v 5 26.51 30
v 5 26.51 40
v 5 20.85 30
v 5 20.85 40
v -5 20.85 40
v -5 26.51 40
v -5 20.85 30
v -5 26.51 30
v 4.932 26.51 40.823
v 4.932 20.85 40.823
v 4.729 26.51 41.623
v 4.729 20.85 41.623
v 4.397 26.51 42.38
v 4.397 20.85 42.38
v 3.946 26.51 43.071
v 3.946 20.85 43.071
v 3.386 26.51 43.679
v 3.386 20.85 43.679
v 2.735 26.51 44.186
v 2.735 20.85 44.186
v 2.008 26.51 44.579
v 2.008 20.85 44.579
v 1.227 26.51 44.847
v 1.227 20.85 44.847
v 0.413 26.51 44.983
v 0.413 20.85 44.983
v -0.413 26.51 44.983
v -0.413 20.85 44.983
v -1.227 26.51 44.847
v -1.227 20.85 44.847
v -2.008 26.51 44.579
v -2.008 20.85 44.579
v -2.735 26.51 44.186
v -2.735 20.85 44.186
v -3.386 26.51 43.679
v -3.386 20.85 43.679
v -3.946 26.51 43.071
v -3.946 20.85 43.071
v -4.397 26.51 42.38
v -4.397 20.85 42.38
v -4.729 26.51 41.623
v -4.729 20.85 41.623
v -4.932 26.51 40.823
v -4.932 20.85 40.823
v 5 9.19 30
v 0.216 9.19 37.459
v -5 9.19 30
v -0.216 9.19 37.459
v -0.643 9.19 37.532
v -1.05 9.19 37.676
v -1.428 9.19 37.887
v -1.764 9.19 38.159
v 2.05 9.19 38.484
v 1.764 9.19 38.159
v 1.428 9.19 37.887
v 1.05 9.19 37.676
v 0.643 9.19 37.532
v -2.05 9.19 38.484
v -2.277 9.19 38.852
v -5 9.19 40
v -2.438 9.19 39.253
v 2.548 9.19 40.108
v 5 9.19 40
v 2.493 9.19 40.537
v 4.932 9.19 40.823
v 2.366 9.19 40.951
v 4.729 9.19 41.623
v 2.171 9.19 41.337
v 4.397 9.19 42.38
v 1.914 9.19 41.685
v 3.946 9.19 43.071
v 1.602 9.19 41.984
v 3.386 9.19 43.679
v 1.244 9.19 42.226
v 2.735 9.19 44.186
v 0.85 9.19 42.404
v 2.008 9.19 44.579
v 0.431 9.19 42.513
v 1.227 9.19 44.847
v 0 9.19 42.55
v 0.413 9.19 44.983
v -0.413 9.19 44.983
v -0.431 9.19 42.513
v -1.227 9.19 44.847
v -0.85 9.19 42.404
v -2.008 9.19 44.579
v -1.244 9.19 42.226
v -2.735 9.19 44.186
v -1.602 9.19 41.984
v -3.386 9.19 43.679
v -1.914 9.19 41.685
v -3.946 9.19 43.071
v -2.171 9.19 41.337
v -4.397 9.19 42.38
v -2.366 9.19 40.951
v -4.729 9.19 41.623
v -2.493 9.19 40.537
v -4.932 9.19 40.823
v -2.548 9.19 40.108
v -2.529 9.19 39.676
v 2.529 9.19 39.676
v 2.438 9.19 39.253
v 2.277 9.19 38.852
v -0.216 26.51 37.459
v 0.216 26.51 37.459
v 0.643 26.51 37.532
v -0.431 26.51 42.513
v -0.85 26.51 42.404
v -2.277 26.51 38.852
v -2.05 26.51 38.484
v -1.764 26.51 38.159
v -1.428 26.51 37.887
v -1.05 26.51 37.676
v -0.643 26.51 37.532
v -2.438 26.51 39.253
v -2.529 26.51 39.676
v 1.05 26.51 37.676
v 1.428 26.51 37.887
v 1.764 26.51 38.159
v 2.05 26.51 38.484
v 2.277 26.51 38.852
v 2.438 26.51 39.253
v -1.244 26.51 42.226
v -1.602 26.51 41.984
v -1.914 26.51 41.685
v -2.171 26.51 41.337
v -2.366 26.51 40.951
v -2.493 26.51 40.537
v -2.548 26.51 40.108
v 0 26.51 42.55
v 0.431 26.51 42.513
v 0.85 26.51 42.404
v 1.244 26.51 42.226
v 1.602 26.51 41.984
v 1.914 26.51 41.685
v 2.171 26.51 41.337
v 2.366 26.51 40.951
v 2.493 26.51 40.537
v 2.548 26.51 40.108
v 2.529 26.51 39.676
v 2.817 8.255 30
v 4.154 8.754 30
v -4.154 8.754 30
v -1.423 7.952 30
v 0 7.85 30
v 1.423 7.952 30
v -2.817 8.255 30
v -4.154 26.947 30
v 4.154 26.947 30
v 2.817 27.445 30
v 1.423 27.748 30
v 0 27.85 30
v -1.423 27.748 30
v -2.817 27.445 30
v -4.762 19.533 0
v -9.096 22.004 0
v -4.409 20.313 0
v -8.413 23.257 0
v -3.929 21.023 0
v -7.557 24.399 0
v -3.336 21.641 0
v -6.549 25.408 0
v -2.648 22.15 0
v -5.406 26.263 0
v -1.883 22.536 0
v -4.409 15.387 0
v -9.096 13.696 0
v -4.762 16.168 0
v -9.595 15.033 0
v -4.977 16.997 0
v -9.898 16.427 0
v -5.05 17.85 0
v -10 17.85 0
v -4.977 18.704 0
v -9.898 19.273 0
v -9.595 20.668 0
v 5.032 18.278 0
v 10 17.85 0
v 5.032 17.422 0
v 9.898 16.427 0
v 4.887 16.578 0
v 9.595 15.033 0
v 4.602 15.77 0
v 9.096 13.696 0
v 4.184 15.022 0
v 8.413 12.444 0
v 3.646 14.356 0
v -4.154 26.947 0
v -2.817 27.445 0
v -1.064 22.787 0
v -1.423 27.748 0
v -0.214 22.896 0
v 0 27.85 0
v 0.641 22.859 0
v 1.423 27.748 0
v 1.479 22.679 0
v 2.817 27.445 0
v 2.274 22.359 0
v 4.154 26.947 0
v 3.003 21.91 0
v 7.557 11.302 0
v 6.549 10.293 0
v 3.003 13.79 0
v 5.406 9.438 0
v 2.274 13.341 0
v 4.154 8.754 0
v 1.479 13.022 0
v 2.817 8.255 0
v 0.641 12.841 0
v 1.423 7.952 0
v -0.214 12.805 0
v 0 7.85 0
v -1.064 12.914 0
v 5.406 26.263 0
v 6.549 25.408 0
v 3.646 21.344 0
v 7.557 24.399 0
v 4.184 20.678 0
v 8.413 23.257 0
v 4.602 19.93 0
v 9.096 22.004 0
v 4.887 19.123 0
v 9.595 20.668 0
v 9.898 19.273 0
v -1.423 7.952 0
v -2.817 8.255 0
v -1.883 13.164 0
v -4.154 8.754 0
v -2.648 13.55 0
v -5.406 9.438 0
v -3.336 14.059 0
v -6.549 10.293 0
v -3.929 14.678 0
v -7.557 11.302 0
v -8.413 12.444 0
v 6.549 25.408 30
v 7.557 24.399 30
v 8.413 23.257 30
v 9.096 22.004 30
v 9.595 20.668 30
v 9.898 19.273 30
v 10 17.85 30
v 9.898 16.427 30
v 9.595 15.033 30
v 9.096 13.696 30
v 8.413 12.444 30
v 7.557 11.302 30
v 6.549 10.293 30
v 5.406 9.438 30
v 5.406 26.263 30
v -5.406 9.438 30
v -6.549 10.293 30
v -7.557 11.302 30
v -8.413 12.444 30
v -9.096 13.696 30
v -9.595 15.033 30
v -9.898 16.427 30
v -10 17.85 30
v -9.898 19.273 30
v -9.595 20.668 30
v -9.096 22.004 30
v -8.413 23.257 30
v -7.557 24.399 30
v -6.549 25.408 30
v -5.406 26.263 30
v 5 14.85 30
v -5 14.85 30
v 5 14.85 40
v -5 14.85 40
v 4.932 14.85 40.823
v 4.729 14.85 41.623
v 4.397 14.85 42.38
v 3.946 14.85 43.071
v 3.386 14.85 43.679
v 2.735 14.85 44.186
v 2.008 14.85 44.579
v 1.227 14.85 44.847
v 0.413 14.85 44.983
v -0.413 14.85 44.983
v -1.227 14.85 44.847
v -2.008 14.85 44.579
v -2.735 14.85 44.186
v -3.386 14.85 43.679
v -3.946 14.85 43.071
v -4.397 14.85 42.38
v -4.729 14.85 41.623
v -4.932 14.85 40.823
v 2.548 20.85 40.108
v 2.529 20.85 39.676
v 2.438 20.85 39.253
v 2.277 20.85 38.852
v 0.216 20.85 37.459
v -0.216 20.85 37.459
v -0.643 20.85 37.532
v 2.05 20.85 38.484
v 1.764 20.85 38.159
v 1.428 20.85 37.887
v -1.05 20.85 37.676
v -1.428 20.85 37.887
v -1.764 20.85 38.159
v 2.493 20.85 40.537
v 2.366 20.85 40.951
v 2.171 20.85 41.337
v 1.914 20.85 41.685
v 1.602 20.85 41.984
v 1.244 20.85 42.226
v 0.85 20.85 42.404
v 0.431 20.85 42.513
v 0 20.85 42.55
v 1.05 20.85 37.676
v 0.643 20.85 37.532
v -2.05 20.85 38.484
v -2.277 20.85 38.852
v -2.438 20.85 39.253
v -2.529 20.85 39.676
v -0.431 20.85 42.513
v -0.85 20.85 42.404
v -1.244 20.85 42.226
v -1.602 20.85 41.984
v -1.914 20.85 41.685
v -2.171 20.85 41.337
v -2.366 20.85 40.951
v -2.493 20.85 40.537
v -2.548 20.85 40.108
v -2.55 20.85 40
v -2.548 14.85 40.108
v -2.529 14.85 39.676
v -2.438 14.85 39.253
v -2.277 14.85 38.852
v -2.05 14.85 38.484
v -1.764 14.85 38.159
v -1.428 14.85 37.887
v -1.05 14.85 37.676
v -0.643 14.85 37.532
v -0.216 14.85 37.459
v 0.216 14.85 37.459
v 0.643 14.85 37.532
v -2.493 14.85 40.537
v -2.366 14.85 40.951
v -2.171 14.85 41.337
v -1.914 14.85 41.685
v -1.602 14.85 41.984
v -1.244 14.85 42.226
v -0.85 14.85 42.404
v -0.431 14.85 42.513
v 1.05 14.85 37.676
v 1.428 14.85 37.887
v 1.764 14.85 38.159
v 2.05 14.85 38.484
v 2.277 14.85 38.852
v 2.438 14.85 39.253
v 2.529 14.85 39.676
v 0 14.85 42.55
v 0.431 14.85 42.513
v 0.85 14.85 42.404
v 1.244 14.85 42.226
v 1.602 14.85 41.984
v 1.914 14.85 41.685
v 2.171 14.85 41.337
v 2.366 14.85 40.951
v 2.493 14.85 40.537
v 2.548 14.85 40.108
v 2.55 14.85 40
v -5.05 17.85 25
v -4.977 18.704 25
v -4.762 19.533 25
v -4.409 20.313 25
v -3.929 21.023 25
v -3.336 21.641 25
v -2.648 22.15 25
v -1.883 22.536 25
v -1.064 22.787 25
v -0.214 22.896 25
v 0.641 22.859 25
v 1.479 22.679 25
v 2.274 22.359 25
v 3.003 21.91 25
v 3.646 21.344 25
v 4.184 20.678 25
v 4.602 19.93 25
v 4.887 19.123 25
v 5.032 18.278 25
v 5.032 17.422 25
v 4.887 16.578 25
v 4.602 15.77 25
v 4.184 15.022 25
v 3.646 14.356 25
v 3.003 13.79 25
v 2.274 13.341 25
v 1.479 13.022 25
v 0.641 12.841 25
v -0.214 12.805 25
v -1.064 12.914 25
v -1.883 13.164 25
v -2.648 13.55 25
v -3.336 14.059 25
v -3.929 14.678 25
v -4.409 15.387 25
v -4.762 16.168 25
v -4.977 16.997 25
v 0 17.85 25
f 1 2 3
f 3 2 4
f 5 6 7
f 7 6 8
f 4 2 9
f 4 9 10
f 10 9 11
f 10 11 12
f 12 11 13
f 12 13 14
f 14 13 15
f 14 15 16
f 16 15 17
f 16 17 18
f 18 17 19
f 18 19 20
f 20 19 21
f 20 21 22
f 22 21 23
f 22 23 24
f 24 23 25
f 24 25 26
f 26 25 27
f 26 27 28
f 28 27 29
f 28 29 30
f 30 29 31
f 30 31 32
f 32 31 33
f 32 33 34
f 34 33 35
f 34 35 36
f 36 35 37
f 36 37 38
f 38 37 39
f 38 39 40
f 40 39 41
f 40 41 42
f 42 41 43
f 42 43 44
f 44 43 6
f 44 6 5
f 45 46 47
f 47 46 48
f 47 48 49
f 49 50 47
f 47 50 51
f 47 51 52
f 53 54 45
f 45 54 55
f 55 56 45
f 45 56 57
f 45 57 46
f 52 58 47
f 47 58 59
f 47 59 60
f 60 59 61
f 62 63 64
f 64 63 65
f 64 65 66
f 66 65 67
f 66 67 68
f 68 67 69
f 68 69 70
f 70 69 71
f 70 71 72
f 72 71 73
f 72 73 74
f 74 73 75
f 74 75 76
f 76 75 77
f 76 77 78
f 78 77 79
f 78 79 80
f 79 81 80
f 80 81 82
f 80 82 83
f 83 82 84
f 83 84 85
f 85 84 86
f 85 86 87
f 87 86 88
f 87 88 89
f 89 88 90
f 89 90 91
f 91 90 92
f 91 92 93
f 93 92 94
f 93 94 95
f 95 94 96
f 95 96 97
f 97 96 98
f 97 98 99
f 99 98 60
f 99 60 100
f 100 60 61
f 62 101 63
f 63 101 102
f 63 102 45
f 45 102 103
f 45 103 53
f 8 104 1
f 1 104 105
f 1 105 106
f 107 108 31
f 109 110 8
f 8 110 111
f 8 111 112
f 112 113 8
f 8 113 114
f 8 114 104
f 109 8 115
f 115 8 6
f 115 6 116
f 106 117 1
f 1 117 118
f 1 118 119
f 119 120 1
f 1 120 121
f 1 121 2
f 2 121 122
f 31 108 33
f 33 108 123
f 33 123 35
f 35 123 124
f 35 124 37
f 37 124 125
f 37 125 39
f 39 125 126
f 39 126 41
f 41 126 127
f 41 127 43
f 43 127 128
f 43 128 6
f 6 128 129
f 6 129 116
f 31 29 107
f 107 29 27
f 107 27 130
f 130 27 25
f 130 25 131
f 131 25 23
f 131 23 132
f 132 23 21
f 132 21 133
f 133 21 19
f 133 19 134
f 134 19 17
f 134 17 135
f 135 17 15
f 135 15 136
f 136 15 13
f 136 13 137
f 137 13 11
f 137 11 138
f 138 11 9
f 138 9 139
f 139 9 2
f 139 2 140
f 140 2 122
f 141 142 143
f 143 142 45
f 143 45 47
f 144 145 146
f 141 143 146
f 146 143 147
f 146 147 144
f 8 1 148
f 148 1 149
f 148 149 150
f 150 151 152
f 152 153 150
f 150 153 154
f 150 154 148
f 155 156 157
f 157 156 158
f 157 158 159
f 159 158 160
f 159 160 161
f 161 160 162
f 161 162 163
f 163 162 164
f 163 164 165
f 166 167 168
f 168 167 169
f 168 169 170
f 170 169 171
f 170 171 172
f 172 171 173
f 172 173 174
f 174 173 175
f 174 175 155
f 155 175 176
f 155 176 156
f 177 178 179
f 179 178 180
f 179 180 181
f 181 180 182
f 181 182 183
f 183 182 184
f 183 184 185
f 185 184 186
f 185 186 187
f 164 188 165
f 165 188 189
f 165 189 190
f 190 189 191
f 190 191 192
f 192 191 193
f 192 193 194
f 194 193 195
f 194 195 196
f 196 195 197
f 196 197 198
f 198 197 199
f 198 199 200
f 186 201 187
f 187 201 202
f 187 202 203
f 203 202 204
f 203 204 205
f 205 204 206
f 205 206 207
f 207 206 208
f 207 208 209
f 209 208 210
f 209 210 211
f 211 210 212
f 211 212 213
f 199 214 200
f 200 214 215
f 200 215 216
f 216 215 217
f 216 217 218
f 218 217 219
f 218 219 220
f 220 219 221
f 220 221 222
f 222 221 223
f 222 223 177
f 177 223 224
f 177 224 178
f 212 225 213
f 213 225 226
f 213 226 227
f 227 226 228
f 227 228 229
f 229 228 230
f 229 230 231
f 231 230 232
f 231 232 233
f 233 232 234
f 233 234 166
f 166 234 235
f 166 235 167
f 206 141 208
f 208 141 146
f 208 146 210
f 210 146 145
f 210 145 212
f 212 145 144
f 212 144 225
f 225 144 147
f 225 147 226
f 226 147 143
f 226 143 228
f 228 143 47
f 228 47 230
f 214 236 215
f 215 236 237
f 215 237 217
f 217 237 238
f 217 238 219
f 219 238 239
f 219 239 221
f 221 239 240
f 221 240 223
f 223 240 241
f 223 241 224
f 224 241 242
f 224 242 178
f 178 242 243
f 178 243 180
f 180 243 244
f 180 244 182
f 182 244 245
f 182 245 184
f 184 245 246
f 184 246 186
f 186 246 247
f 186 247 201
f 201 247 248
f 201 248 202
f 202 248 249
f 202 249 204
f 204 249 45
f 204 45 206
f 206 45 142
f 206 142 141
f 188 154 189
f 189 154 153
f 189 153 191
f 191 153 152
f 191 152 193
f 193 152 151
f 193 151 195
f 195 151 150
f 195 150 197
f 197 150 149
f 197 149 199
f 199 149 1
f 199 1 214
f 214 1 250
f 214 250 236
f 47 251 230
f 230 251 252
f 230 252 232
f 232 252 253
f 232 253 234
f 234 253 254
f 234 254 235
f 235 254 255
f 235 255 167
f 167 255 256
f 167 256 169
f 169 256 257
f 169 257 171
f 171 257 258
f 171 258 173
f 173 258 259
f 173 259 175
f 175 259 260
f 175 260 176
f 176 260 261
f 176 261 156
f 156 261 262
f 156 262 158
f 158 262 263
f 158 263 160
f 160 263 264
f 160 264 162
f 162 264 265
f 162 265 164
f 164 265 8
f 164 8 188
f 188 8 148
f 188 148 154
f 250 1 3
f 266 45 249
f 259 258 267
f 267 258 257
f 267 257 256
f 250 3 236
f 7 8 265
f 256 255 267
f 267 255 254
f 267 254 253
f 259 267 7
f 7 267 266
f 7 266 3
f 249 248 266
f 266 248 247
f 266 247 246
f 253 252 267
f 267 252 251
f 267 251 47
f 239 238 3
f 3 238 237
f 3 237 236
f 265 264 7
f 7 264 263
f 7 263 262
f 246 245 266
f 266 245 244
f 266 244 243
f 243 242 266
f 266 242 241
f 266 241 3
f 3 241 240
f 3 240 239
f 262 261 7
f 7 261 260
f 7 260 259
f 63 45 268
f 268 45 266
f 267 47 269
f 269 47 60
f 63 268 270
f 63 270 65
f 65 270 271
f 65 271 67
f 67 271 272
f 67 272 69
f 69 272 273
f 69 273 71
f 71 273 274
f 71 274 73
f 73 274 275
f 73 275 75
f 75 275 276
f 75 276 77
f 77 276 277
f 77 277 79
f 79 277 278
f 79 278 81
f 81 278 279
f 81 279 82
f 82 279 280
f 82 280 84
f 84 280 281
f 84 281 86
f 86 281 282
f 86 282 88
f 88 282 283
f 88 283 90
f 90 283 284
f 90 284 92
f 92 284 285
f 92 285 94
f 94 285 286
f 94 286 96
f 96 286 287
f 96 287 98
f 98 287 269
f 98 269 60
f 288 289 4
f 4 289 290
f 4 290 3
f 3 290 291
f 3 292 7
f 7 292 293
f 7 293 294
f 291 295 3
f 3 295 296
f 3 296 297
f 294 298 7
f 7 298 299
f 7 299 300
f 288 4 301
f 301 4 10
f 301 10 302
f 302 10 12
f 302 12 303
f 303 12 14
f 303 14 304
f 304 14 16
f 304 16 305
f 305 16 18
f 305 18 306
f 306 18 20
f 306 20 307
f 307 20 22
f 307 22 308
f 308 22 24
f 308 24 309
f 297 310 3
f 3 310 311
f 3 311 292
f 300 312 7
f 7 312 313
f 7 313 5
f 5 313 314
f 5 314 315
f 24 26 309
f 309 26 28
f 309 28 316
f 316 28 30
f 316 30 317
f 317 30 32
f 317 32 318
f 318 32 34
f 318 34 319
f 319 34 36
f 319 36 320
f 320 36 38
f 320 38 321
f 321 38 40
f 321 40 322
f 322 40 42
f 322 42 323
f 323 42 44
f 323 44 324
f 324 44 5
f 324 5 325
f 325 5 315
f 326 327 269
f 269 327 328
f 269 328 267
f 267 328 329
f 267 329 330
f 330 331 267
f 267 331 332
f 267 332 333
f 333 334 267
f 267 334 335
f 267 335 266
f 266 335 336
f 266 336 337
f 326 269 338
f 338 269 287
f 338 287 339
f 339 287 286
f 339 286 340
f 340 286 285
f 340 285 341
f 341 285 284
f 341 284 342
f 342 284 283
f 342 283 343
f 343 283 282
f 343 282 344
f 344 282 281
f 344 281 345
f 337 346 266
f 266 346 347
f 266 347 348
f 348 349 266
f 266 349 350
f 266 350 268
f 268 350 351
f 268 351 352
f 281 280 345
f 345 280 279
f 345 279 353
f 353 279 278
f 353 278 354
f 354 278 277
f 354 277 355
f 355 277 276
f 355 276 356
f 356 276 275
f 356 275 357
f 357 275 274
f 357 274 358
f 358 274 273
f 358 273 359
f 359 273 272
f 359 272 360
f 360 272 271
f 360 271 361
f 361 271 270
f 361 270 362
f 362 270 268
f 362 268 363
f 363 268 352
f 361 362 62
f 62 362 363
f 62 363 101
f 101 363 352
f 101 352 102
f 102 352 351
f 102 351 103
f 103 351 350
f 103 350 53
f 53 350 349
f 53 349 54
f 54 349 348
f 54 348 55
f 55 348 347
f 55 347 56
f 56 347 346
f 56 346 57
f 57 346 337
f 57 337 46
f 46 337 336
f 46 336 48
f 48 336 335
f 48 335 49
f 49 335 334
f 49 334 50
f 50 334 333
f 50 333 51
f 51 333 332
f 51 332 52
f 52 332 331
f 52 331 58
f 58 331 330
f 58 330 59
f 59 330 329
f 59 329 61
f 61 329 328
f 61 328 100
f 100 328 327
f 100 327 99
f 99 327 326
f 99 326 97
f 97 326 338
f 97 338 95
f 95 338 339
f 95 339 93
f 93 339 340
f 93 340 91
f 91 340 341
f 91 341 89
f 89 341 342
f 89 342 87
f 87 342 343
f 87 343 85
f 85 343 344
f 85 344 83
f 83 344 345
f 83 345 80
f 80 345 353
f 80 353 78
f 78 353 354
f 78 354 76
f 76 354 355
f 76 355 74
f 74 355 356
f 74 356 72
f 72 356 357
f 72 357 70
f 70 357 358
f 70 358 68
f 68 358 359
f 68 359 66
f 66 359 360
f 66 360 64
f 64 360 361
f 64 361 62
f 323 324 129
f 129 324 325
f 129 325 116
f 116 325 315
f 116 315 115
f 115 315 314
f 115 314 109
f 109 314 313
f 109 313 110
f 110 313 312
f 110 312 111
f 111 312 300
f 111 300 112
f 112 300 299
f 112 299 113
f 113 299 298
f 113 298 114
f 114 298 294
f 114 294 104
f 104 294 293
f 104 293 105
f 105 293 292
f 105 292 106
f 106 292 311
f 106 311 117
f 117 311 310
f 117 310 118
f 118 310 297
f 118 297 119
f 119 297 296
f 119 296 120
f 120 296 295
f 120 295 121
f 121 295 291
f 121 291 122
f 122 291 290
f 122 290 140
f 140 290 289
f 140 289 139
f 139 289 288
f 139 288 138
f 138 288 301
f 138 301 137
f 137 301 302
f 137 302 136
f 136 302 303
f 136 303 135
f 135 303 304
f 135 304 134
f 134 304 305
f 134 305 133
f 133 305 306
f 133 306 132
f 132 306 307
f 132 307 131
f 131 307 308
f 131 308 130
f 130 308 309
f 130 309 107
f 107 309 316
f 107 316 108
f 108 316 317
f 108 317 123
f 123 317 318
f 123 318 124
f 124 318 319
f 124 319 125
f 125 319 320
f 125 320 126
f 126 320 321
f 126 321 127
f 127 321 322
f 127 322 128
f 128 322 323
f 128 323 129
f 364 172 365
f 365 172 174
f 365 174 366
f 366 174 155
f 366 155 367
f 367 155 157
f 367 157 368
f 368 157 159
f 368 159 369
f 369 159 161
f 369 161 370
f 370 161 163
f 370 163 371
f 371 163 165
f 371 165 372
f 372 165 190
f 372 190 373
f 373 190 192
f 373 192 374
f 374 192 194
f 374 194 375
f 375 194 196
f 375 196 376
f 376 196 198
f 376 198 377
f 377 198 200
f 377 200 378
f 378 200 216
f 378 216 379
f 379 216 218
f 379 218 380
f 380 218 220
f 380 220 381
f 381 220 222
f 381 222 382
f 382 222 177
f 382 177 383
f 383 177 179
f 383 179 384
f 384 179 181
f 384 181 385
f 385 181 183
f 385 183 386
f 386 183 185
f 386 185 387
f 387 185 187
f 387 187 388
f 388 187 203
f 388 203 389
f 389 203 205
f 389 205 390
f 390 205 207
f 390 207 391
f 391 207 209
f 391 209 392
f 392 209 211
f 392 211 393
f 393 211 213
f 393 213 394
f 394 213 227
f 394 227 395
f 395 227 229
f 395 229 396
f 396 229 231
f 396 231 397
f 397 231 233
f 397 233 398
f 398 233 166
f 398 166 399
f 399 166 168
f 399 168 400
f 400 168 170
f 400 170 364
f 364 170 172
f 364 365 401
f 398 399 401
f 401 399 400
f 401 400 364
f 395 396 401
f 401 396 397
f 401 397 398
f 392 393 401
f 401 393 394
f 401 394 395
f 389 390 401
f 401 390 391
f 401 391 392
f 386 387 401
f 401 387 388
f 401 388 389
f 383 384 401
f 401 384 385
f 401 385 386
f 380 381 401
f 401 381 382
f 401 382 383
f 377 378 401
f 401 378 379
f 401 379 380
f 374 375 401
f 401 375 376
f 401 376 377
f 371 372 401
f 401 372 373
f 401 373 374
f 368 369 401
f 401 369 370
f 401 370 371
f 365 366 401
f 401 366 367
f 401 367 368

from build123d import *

# Parameters (mm, degrees)
SKETCH_1_R          = 10
EXTRUDE_1_DEPTH     = 30
SKETCH_2_W          = 10
SKETCH_2_H          = 17.320508075
EXTRUDE_3_DEPTH     = 15
CUT_EXTRUDE_1_DEPTH = 50.731328966
CUT_EXTRUDE_2_DEPTH = 50.731328966
CUT_EXTRUDE_3_DEPTH = 15
SKETCH_5_4_R        = 2.55
CUT_EXTRUDE_4_DEPTH = 50.731328966
SKETCH_9_R          = 5.05
CUT_EXTRUDE_5_DEPTH = 25


with BuildPart() as part:
    # Эскиз1 → Бобышка-Вытянуть1 (new body)
    with BuildSketch(Plane.XY):
        with Locations((0, 17.850182559)):
            Circle(SKETCH_1_R)
    extrude(amount=EXTRUDE_1_DEPTH)

    # Эскиз2 → Бобышка-Вытянуть3 (add)
    with BuildSketch(Plane.XY.offset(30)):
        with Locations((0, 17.85018256)):
            Rectangle(SKETCH_2_W, SKETCH_2_H)
    extrude(amount=EXTRUDE_3_DEPTH)

    # Эскиз5 → Вырез-Вытянуть1 (cut, through all)
    with BuildSketch(Plane(origin=(0, 26.510436597, 0), x_dir=(1, 0, 0), z_dir=(0, 1, 0))):
        with BuildLine():
            Line((5, -45), (5, -40))
            ThreePointArc((5, -40), (3.535533906, -43.535533906), (0, -45))
            Line((0, -45), (5, -45))
        make_face()
    extrude(amount=-CUT_EXTRUDE_1_DEPTH, mode=Mode.SUBTRACT)

    # Эскиз5<3> → Вырез-Вытянуть2 (cut, through all)
    with BuildSketch(Plane(origin=(0, 26.510436597, 0), x_dir=(1, 0, 0), z_dir=(0, 1, 0))):
        with BuildLine():
            ThreePointArc((0, -45), (-3.535533906, -43.535533906), (-5, -40))
            Line((-5, -40), (-5, -45))
            Line((-5, -45), (0, -45))
        make_face()
    extrude(amount=-CUT_EXTRUDE_2_DEPTH, mode=Mode.SUBTRACT)

    # Эскиз6 → Вырез-Вытянуть3 (cut)
    with BuildSketch(Plane(origin=(5, 0, 0), x_dir=(0, 0, -1), z_dir=(1, 0, 0))):
        Polygon((-40, 14.850182559), (-47.355991934, 14.850182559), (-47.355991934, 20.850182559), (-40, 20.850182559), (-30, 20.850182559), (-30, 14.850182559), align=None)
    extrude(amount=-CUT_EXTRUDE_3_DEPTH, mode=Mode.SUBTRACT)

    # Эскиз5<4> → Вырез-Вытянуть4 (cut, through all)
    with BuildSketch(Plane(origin=(0, 26.510436597, 0), x_dir=(1, 0, 0), z_dir=(0, 1, 0))):
        with Locations((0, -40)):
            Circle(SKETCH_5_4_R)
    extrude(amount=-CUT_EXTRUDE_4_DEPTH, mode=Mode.SUBTRACT)

    # Эскиз9 → Вырез-Вытянуть5 (cut)
    with BuildSketch(Plane(origin=(0, 0, 0), x_dir=(-1, 0, 0), z_dir=(0, 0, -1))):
        with Locations((0, 17.850182559)):
            Circle(SKETCH_9_R)
    extrude(amount=-CUT_EXTRUDE_5_DEPTH, mode=Mode.SUBTRACT)


solid = part.part
